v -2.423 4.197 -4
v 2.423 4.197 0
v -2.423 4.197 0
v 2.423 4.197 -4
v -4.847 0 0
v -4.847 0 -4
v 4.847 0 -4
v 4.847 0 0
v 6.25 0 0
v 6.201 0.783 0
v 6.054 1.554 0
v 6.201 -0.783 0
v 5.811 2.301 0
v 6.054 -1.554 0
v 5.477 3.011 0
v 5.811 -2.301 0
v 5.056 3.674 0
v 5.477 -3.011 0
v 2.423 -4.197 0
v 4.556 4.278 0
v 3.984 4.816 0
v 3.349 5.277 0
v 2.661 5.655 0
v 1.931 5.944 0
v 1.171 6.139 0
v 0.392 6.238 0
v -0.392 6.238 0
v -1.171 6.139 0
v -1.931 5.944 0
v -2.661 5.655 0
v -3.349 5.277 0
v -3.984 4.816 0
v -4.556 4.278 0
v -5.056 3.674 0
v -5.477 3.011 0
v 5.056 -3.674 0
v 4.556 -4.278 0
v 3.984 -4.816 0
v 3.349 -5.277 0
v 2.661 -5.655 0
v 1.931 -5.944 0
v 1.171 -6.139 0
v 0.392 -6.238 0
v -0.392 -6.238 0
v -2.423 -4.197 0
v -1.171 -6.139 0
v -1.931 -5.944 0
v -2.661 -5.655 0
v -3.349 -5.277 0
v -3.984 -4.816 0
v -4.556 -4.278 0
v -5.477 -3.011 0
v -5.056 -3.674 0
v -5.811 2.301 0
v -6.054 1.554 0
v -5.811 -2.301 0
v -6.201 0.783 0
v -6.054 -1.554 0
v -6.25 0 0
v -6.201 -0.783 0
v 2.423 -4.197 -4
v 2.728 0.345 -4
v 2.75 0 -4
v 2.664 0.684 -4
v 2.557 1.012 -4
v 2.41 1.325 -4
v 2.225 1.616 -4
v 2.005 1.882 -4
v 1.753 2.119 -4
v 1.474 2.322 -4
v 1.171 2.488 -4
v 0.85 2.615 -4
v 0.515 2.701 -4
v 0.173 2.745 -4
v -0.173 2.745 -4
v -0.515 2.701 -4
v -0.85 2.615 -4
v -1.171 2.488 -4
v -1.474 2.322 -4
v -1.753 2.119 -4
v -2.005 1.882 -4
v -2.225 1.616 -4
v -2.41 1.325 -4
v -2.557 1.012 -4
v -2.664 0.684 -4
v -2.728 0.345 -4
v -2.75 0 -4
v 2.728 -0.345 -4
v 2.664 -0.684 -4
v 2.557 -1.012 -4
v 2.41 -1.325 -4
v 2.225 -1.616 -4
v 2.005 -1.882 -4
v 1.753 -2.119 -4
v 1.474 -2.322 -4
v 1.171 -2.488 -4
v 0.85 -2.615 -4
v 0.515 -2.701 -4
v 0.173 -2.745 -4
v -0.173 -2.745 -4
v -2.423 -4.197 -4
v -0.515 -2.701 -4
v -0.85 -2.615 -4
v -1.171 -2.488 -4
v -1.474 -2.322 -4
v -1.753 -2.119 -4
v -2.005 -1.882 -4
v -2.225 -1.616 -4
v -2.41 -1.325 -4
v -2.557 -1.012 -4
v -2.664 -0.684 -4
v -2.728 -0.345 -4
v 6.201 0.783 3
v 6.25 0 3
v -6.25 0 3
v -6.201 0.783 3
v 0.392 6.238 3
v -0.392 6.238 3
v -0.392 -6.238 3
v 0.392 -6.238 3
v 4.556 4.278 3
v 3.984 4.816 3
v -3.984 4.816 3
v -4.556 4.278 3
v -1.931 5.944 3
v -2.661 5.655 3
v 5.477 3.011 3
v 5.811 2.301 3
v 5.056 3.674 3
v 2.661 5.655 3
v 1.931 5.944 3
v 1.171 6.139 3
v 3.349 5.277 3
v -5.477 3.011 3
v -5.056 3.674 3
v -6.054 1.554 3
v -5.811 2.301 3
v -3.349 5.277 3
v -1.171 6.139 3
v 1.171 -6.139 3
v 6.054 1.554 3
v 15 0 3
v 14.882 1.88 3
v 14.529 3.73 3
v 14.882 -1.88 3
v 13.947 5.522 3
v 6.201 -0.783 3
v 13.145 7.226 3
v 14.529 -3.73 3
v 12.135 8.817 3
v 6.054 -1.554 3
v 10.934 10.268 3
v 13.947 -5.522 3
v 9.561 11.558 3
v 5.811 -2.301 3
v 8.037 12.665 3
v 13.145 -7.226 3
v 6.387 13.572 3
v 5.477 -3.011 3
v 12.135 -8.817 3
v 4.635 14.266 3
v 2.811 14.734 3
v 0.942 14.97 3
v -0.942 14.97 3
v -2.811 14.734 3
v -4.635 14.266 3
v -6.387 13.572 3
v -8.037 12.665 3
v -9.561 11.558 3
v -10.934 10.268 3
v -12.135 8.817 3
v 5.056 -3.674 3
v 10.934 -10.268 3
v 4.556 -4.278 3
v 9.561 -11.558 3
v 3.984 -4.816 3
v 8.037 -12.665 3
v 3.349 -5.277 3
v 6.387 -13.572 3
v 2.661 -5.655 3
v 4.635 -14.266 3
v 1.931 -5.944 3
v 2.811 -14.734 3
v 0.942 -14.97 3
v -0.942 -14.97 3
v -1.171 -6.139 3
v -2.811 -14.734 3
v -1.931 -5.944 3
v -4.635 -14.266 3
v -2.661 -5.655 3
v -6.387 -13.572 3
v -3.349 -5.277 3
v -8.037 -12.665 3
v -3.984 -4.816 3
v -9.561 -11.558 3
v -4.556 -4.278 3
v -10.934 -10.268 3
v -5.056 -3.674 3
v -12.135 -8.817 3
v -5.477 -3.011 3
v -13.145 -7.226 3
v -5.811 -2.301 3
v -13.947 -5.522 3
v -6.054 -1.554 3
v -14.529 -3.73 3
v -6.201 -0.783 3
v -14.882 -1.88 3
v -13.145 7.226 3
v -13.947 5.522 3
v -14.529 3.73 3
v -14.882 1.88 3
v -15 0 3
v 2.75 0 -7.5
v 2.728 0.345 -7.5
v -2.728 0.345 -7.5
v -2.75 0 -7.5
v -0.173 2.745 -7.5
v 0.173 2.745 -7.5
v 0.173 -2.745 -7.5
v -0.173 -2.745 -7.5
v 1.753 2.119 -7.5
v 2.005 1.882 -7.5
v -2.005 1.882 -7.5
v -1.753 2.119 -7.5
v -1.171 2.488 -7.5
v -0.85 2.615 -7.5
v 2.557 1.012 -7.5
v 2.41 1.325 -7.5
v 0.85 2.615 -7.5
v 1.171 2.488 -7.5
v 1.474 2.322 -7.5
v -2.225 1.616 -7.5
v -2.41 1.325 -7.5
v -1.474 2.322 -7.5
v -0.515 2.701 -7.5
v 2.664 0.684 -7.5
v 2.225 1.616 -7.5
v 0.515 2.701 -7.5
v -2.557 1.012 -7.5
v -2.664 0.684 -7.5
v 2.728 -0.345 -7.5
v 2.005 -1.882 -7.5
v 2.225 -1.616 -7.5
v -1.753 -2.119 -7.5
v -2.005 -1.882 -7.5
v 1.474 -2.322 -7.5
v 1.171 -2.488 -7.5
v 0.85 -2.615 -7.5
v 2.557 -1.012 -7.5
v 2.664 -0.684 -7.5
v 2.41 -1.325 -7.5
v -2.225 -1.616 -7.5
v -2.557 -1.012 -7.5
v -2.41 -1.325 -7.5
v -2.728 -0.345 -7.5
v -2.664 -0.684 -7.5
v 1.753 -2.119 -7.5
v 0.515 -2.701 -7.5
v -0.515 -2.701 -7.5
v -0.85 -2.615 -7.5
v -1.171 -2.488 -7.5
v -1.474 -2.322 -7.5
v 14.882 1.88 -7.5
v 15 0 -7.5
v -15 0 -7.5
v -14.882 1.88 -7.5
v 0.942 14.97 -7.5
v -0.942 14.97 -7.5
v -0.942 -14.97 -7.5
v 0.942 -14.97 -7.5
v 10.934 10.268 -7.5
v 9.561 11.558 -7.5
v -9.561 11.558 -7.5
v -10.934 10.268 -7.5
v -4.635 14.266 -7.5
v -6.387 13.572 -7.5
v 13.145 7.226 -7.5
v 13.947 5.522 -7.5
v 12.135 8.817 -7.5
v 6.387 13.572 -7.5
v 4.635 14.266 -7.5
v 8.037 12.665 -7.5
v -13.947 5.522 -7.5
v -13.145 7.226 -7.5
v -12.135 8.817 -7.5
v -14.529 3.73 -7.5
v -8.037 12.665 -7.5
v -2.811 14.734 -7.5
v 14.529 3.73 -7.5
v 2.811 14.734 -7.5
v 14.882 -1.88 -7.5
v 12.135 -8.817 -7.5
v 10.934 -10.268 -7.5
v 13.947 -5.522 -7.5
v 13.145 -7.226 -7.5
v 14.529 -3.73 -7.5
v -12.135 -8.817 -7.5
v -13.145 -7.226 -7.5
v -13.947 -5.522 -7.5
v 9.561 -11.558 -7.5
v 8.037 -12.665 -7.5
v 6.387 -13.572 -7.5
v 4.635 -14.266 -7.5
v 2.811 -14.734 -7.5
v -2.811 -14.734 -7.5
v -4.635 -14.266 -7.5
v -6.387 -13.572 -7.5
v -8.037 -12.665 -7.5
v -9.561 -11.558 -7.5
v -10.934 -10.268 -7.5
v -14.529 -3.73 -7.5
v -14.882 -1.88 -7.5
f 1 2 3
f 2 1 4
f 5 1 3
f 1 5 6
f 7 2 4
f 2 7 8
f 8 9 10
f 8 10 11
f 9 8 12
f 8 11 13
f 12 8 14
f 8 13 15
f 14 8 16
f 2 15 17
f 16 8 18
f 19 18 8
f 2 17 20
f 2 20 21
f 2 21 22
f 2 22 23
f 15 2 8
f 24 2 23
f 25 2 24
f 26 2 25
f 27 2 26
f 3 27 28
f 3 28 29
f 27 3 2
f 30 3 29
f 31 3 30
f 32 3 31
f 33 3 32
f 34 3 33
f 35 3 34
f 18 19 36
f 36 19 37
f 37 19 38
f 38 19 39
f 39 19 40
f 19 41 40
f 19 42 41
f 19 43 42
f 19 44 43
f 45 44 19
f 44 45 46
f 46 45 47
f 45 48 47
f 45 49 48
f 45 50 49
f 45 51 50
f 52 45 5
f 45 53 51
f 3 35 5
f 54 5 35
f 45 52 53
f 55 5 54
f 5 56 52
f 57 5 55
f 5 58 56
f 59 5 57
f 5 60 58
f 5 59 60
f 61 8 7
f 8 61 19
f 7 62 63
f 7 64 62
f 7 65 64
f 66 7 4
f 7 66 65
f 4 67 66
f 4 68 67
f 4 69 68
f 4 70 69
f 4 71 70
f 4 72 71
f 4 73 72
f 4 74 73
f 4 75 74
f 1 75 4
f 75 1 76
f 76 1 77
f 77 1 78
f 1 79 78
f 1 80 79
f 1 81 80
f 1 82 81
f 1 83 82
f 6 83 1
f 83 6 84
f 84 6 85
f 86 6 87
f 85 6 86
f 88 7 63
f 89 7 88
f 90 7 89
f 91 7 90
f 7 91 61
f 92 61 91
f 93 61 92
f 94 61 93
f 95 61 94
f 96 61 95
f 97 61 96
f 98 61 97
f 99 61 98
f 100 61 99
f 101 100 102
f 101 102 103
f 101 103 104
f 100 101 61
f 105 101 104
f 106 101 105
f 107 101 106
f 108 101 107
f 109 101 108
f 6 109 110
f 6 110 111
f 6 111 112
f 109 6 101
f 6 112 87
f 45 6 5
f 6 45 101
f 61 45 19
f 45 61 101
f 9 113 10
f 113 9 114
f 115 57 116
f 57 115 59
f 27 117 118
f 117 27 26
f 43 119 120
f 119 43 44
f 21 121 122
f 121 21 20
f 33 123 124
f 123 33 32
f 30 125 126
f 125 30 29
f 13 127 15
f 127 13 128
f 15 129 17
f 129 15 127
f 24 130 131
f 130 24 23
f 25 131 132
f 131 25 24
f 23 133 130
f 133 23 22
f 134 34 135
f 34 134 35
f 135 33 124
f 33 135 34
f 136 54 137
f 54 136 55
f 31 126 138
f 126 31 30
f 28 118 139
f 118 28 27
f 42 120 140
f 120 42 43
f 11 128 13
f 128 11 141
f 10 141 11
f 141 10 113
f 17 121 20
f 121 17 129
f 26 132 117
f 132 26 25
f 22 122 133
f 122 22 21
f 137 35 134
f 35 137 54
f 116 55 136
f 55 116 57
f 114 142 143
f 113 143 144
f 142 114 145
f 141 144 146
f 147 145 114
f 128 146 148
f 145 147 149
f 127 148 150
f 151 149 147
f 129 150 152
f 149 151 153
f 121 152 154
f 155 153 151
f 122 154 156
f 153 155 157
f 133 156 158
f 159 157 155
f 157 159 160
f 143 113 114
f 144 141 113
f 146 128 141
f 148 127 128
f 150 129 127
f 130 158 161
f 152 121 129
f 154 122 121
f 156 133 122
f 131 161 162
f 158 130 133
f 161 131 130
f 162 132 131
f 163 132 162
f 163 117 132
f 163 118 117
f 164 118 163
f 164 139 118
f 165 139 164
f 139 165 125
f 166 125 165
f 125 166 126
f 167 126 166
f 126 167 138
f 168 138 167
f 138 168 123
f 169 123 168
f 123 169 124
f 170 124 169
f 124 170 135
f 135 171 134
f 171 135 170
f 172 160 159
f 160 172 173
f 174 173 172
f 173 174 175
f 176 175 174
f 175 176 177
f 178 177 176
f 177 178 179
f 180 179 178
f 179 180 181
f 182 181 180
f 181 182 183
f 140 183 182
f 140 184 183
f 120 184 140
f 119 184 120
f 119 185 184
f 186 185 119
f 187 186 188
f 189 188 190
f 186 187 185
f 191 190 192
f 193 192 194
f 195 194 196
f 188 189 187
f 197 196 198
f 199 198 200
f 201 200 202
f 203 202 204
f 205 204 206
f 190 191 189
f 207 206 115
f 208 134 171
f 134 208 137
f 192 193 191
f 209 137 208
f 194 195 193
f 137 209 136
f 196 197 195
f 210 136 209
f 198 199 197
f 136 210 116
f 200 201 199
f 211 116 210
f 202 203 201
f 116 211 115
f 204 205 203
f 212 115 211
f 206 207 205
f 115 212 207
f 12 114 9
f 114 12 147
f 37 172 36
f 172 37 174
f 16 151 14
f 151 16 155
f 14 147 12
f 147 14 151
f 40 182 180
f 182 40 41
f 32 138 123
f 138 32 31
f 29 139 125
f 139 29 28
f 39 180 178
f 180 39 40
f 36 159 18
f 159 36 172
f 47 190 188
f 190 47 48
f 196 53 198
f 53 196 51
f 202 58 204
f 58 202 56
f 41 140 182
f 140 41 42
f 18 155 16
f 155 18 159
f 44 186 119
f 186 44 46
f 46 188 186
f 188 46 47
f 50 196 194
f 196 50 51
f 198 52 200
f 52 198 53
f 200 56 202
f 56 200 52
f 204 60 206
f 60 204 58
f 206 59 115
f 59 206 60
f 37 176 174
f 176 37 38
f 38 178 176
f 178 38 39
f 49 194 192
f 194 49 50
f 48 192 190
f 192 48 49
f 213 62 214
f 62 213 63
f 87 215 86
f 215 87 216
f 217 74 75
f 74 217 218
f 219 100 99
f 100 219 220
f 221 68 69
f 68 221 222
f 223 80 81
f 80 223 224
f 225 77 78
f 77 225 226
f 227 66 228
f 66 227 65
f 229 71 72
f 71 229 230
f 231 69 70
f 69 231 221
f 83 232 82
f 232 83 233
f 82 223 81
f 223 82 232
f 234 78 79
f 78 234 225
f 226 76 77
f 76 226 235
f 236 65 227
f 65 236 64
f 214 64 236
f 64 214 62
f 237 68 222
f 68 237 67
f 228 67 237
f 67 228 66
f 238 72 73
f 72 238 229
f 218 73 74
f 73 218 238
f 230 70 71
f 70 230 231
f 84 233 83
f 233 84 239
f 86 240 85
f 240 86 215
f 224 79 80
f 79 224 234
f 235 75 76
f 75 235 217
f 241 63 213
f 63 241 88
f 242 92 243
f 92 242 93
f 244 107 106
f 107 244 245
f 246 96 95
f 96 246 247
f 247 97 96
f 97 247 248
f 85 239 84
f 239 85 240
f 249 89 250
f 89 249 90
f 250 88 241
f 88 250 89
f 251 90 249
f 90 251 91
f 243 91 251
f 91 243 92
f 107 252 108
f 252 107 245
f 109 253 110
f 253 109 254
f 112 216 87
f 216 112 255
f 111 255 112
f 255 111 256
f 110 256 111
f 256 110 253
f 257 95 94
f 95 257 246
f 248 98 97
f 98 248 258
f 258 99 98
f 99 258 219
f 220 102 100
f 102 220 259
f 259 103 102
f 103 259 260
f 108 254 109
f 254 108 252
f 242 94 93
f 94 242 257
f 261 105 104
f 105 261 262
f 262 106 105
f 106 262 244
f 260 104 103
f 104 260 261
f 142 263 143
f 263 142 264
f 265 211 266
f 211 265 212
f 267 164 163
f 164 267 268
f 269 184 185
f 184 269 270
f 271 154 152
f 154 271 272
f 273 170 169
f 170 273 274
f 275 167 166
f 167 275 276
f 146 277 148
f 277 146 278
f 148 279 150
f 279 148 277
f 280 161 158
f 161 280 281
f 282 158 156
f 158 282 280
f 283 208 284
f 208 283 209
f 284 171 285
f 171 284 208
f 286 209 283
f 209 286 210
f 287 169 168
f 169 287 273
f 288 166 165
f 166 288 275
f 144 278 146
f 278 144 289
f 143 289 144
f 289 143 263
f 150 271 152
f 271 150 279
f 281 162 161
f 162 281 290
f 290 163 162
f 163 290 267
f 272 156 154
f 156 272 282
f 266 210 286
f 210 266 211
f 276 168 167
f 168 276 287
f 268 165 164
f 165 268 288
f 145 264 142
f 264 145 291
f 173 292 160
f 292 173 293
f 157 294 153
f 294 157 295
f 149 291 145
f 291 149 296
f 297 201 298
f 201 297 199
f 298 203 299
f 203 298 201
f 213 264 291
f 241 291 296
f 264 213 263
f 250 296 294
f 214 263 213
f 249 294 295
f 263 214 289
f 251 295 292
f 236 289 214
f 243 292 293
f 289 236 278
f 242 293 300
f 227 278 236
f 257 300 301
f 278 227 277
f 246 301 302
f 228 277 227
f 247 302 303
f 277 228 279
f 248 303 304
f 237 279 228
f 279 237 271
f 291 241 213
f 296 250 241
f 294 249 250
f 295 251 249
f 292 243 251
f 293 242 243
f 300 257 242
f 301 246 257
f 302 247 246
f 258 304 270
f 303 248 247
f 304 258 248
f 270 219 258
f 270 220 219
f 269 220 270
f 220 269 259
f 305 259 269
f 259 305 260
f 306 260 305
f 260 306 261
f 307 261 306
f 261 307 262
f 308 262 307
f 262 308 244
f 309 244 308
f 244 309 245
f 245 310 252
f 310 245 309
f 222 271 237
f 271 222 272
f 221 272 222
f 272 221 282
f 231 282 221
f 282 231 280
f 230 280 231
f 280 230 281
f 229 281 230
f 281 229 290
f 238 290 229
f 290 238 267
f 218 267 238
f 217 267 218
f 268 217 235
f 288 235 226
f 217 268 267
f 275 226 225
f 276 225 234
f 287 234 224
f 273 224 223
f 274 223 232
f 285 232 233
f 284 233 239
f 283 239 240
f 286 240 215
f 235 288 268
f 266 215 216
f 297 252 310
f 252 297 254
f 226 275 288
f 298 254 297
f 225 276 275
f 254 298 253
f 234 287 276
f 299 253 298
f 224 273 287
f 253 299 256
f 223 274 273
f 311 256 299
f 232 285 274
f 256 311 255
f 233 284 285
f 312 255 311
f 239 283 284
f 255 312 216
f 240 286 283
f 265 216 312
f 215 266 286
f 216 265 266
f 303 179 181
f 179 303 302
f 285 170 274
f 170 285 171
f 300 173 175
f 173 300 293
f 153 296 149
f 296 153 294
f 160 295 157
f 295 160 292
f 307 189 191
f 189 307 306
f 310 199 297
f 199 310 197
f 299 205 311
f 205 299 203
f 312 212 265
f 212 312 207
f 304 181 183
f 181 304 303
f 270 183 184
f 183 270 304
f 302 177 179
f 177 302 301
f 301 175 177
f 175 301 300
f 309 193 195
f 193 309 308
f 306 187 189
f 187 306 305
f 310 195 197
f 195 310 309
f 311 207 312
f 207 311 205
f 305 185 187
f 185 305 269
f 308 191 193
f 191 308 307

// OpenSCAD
$fn = 50;


difference() {
	union() {
		translate(v = [0, 0, -7.5000000000]) {
			cylinder(h = 10.5000000000, r = 15.0000000000);
		}
	}
	union() {
		translate(v = [0, 0, 0]) {
			rotate(a = [0, 0, 0]) {
				difference() {
					union() {
						translate(v = [0, 0, -4]) {
							linear_extrude(height = 4) {
								polygon(points = [[4.8468000000, 0.0000000000], [2.4234000000, 4.1974519271], [-2.4234000000, 4.1974519271], [-4.8468000000, 0.0000000000], [-2.4234000000, -4.1974519271], [2.4234000000, -4.1974519271]]);
							}
						}
					}
					union();
				}
			}
		}
		#cylinder(h = 3, r = 6.2500000000);
		#translate(v = [0, 0, -100.0000000000]) {
			cylinder(h = 200, r = 2.7500000000);
		}
	}
}
